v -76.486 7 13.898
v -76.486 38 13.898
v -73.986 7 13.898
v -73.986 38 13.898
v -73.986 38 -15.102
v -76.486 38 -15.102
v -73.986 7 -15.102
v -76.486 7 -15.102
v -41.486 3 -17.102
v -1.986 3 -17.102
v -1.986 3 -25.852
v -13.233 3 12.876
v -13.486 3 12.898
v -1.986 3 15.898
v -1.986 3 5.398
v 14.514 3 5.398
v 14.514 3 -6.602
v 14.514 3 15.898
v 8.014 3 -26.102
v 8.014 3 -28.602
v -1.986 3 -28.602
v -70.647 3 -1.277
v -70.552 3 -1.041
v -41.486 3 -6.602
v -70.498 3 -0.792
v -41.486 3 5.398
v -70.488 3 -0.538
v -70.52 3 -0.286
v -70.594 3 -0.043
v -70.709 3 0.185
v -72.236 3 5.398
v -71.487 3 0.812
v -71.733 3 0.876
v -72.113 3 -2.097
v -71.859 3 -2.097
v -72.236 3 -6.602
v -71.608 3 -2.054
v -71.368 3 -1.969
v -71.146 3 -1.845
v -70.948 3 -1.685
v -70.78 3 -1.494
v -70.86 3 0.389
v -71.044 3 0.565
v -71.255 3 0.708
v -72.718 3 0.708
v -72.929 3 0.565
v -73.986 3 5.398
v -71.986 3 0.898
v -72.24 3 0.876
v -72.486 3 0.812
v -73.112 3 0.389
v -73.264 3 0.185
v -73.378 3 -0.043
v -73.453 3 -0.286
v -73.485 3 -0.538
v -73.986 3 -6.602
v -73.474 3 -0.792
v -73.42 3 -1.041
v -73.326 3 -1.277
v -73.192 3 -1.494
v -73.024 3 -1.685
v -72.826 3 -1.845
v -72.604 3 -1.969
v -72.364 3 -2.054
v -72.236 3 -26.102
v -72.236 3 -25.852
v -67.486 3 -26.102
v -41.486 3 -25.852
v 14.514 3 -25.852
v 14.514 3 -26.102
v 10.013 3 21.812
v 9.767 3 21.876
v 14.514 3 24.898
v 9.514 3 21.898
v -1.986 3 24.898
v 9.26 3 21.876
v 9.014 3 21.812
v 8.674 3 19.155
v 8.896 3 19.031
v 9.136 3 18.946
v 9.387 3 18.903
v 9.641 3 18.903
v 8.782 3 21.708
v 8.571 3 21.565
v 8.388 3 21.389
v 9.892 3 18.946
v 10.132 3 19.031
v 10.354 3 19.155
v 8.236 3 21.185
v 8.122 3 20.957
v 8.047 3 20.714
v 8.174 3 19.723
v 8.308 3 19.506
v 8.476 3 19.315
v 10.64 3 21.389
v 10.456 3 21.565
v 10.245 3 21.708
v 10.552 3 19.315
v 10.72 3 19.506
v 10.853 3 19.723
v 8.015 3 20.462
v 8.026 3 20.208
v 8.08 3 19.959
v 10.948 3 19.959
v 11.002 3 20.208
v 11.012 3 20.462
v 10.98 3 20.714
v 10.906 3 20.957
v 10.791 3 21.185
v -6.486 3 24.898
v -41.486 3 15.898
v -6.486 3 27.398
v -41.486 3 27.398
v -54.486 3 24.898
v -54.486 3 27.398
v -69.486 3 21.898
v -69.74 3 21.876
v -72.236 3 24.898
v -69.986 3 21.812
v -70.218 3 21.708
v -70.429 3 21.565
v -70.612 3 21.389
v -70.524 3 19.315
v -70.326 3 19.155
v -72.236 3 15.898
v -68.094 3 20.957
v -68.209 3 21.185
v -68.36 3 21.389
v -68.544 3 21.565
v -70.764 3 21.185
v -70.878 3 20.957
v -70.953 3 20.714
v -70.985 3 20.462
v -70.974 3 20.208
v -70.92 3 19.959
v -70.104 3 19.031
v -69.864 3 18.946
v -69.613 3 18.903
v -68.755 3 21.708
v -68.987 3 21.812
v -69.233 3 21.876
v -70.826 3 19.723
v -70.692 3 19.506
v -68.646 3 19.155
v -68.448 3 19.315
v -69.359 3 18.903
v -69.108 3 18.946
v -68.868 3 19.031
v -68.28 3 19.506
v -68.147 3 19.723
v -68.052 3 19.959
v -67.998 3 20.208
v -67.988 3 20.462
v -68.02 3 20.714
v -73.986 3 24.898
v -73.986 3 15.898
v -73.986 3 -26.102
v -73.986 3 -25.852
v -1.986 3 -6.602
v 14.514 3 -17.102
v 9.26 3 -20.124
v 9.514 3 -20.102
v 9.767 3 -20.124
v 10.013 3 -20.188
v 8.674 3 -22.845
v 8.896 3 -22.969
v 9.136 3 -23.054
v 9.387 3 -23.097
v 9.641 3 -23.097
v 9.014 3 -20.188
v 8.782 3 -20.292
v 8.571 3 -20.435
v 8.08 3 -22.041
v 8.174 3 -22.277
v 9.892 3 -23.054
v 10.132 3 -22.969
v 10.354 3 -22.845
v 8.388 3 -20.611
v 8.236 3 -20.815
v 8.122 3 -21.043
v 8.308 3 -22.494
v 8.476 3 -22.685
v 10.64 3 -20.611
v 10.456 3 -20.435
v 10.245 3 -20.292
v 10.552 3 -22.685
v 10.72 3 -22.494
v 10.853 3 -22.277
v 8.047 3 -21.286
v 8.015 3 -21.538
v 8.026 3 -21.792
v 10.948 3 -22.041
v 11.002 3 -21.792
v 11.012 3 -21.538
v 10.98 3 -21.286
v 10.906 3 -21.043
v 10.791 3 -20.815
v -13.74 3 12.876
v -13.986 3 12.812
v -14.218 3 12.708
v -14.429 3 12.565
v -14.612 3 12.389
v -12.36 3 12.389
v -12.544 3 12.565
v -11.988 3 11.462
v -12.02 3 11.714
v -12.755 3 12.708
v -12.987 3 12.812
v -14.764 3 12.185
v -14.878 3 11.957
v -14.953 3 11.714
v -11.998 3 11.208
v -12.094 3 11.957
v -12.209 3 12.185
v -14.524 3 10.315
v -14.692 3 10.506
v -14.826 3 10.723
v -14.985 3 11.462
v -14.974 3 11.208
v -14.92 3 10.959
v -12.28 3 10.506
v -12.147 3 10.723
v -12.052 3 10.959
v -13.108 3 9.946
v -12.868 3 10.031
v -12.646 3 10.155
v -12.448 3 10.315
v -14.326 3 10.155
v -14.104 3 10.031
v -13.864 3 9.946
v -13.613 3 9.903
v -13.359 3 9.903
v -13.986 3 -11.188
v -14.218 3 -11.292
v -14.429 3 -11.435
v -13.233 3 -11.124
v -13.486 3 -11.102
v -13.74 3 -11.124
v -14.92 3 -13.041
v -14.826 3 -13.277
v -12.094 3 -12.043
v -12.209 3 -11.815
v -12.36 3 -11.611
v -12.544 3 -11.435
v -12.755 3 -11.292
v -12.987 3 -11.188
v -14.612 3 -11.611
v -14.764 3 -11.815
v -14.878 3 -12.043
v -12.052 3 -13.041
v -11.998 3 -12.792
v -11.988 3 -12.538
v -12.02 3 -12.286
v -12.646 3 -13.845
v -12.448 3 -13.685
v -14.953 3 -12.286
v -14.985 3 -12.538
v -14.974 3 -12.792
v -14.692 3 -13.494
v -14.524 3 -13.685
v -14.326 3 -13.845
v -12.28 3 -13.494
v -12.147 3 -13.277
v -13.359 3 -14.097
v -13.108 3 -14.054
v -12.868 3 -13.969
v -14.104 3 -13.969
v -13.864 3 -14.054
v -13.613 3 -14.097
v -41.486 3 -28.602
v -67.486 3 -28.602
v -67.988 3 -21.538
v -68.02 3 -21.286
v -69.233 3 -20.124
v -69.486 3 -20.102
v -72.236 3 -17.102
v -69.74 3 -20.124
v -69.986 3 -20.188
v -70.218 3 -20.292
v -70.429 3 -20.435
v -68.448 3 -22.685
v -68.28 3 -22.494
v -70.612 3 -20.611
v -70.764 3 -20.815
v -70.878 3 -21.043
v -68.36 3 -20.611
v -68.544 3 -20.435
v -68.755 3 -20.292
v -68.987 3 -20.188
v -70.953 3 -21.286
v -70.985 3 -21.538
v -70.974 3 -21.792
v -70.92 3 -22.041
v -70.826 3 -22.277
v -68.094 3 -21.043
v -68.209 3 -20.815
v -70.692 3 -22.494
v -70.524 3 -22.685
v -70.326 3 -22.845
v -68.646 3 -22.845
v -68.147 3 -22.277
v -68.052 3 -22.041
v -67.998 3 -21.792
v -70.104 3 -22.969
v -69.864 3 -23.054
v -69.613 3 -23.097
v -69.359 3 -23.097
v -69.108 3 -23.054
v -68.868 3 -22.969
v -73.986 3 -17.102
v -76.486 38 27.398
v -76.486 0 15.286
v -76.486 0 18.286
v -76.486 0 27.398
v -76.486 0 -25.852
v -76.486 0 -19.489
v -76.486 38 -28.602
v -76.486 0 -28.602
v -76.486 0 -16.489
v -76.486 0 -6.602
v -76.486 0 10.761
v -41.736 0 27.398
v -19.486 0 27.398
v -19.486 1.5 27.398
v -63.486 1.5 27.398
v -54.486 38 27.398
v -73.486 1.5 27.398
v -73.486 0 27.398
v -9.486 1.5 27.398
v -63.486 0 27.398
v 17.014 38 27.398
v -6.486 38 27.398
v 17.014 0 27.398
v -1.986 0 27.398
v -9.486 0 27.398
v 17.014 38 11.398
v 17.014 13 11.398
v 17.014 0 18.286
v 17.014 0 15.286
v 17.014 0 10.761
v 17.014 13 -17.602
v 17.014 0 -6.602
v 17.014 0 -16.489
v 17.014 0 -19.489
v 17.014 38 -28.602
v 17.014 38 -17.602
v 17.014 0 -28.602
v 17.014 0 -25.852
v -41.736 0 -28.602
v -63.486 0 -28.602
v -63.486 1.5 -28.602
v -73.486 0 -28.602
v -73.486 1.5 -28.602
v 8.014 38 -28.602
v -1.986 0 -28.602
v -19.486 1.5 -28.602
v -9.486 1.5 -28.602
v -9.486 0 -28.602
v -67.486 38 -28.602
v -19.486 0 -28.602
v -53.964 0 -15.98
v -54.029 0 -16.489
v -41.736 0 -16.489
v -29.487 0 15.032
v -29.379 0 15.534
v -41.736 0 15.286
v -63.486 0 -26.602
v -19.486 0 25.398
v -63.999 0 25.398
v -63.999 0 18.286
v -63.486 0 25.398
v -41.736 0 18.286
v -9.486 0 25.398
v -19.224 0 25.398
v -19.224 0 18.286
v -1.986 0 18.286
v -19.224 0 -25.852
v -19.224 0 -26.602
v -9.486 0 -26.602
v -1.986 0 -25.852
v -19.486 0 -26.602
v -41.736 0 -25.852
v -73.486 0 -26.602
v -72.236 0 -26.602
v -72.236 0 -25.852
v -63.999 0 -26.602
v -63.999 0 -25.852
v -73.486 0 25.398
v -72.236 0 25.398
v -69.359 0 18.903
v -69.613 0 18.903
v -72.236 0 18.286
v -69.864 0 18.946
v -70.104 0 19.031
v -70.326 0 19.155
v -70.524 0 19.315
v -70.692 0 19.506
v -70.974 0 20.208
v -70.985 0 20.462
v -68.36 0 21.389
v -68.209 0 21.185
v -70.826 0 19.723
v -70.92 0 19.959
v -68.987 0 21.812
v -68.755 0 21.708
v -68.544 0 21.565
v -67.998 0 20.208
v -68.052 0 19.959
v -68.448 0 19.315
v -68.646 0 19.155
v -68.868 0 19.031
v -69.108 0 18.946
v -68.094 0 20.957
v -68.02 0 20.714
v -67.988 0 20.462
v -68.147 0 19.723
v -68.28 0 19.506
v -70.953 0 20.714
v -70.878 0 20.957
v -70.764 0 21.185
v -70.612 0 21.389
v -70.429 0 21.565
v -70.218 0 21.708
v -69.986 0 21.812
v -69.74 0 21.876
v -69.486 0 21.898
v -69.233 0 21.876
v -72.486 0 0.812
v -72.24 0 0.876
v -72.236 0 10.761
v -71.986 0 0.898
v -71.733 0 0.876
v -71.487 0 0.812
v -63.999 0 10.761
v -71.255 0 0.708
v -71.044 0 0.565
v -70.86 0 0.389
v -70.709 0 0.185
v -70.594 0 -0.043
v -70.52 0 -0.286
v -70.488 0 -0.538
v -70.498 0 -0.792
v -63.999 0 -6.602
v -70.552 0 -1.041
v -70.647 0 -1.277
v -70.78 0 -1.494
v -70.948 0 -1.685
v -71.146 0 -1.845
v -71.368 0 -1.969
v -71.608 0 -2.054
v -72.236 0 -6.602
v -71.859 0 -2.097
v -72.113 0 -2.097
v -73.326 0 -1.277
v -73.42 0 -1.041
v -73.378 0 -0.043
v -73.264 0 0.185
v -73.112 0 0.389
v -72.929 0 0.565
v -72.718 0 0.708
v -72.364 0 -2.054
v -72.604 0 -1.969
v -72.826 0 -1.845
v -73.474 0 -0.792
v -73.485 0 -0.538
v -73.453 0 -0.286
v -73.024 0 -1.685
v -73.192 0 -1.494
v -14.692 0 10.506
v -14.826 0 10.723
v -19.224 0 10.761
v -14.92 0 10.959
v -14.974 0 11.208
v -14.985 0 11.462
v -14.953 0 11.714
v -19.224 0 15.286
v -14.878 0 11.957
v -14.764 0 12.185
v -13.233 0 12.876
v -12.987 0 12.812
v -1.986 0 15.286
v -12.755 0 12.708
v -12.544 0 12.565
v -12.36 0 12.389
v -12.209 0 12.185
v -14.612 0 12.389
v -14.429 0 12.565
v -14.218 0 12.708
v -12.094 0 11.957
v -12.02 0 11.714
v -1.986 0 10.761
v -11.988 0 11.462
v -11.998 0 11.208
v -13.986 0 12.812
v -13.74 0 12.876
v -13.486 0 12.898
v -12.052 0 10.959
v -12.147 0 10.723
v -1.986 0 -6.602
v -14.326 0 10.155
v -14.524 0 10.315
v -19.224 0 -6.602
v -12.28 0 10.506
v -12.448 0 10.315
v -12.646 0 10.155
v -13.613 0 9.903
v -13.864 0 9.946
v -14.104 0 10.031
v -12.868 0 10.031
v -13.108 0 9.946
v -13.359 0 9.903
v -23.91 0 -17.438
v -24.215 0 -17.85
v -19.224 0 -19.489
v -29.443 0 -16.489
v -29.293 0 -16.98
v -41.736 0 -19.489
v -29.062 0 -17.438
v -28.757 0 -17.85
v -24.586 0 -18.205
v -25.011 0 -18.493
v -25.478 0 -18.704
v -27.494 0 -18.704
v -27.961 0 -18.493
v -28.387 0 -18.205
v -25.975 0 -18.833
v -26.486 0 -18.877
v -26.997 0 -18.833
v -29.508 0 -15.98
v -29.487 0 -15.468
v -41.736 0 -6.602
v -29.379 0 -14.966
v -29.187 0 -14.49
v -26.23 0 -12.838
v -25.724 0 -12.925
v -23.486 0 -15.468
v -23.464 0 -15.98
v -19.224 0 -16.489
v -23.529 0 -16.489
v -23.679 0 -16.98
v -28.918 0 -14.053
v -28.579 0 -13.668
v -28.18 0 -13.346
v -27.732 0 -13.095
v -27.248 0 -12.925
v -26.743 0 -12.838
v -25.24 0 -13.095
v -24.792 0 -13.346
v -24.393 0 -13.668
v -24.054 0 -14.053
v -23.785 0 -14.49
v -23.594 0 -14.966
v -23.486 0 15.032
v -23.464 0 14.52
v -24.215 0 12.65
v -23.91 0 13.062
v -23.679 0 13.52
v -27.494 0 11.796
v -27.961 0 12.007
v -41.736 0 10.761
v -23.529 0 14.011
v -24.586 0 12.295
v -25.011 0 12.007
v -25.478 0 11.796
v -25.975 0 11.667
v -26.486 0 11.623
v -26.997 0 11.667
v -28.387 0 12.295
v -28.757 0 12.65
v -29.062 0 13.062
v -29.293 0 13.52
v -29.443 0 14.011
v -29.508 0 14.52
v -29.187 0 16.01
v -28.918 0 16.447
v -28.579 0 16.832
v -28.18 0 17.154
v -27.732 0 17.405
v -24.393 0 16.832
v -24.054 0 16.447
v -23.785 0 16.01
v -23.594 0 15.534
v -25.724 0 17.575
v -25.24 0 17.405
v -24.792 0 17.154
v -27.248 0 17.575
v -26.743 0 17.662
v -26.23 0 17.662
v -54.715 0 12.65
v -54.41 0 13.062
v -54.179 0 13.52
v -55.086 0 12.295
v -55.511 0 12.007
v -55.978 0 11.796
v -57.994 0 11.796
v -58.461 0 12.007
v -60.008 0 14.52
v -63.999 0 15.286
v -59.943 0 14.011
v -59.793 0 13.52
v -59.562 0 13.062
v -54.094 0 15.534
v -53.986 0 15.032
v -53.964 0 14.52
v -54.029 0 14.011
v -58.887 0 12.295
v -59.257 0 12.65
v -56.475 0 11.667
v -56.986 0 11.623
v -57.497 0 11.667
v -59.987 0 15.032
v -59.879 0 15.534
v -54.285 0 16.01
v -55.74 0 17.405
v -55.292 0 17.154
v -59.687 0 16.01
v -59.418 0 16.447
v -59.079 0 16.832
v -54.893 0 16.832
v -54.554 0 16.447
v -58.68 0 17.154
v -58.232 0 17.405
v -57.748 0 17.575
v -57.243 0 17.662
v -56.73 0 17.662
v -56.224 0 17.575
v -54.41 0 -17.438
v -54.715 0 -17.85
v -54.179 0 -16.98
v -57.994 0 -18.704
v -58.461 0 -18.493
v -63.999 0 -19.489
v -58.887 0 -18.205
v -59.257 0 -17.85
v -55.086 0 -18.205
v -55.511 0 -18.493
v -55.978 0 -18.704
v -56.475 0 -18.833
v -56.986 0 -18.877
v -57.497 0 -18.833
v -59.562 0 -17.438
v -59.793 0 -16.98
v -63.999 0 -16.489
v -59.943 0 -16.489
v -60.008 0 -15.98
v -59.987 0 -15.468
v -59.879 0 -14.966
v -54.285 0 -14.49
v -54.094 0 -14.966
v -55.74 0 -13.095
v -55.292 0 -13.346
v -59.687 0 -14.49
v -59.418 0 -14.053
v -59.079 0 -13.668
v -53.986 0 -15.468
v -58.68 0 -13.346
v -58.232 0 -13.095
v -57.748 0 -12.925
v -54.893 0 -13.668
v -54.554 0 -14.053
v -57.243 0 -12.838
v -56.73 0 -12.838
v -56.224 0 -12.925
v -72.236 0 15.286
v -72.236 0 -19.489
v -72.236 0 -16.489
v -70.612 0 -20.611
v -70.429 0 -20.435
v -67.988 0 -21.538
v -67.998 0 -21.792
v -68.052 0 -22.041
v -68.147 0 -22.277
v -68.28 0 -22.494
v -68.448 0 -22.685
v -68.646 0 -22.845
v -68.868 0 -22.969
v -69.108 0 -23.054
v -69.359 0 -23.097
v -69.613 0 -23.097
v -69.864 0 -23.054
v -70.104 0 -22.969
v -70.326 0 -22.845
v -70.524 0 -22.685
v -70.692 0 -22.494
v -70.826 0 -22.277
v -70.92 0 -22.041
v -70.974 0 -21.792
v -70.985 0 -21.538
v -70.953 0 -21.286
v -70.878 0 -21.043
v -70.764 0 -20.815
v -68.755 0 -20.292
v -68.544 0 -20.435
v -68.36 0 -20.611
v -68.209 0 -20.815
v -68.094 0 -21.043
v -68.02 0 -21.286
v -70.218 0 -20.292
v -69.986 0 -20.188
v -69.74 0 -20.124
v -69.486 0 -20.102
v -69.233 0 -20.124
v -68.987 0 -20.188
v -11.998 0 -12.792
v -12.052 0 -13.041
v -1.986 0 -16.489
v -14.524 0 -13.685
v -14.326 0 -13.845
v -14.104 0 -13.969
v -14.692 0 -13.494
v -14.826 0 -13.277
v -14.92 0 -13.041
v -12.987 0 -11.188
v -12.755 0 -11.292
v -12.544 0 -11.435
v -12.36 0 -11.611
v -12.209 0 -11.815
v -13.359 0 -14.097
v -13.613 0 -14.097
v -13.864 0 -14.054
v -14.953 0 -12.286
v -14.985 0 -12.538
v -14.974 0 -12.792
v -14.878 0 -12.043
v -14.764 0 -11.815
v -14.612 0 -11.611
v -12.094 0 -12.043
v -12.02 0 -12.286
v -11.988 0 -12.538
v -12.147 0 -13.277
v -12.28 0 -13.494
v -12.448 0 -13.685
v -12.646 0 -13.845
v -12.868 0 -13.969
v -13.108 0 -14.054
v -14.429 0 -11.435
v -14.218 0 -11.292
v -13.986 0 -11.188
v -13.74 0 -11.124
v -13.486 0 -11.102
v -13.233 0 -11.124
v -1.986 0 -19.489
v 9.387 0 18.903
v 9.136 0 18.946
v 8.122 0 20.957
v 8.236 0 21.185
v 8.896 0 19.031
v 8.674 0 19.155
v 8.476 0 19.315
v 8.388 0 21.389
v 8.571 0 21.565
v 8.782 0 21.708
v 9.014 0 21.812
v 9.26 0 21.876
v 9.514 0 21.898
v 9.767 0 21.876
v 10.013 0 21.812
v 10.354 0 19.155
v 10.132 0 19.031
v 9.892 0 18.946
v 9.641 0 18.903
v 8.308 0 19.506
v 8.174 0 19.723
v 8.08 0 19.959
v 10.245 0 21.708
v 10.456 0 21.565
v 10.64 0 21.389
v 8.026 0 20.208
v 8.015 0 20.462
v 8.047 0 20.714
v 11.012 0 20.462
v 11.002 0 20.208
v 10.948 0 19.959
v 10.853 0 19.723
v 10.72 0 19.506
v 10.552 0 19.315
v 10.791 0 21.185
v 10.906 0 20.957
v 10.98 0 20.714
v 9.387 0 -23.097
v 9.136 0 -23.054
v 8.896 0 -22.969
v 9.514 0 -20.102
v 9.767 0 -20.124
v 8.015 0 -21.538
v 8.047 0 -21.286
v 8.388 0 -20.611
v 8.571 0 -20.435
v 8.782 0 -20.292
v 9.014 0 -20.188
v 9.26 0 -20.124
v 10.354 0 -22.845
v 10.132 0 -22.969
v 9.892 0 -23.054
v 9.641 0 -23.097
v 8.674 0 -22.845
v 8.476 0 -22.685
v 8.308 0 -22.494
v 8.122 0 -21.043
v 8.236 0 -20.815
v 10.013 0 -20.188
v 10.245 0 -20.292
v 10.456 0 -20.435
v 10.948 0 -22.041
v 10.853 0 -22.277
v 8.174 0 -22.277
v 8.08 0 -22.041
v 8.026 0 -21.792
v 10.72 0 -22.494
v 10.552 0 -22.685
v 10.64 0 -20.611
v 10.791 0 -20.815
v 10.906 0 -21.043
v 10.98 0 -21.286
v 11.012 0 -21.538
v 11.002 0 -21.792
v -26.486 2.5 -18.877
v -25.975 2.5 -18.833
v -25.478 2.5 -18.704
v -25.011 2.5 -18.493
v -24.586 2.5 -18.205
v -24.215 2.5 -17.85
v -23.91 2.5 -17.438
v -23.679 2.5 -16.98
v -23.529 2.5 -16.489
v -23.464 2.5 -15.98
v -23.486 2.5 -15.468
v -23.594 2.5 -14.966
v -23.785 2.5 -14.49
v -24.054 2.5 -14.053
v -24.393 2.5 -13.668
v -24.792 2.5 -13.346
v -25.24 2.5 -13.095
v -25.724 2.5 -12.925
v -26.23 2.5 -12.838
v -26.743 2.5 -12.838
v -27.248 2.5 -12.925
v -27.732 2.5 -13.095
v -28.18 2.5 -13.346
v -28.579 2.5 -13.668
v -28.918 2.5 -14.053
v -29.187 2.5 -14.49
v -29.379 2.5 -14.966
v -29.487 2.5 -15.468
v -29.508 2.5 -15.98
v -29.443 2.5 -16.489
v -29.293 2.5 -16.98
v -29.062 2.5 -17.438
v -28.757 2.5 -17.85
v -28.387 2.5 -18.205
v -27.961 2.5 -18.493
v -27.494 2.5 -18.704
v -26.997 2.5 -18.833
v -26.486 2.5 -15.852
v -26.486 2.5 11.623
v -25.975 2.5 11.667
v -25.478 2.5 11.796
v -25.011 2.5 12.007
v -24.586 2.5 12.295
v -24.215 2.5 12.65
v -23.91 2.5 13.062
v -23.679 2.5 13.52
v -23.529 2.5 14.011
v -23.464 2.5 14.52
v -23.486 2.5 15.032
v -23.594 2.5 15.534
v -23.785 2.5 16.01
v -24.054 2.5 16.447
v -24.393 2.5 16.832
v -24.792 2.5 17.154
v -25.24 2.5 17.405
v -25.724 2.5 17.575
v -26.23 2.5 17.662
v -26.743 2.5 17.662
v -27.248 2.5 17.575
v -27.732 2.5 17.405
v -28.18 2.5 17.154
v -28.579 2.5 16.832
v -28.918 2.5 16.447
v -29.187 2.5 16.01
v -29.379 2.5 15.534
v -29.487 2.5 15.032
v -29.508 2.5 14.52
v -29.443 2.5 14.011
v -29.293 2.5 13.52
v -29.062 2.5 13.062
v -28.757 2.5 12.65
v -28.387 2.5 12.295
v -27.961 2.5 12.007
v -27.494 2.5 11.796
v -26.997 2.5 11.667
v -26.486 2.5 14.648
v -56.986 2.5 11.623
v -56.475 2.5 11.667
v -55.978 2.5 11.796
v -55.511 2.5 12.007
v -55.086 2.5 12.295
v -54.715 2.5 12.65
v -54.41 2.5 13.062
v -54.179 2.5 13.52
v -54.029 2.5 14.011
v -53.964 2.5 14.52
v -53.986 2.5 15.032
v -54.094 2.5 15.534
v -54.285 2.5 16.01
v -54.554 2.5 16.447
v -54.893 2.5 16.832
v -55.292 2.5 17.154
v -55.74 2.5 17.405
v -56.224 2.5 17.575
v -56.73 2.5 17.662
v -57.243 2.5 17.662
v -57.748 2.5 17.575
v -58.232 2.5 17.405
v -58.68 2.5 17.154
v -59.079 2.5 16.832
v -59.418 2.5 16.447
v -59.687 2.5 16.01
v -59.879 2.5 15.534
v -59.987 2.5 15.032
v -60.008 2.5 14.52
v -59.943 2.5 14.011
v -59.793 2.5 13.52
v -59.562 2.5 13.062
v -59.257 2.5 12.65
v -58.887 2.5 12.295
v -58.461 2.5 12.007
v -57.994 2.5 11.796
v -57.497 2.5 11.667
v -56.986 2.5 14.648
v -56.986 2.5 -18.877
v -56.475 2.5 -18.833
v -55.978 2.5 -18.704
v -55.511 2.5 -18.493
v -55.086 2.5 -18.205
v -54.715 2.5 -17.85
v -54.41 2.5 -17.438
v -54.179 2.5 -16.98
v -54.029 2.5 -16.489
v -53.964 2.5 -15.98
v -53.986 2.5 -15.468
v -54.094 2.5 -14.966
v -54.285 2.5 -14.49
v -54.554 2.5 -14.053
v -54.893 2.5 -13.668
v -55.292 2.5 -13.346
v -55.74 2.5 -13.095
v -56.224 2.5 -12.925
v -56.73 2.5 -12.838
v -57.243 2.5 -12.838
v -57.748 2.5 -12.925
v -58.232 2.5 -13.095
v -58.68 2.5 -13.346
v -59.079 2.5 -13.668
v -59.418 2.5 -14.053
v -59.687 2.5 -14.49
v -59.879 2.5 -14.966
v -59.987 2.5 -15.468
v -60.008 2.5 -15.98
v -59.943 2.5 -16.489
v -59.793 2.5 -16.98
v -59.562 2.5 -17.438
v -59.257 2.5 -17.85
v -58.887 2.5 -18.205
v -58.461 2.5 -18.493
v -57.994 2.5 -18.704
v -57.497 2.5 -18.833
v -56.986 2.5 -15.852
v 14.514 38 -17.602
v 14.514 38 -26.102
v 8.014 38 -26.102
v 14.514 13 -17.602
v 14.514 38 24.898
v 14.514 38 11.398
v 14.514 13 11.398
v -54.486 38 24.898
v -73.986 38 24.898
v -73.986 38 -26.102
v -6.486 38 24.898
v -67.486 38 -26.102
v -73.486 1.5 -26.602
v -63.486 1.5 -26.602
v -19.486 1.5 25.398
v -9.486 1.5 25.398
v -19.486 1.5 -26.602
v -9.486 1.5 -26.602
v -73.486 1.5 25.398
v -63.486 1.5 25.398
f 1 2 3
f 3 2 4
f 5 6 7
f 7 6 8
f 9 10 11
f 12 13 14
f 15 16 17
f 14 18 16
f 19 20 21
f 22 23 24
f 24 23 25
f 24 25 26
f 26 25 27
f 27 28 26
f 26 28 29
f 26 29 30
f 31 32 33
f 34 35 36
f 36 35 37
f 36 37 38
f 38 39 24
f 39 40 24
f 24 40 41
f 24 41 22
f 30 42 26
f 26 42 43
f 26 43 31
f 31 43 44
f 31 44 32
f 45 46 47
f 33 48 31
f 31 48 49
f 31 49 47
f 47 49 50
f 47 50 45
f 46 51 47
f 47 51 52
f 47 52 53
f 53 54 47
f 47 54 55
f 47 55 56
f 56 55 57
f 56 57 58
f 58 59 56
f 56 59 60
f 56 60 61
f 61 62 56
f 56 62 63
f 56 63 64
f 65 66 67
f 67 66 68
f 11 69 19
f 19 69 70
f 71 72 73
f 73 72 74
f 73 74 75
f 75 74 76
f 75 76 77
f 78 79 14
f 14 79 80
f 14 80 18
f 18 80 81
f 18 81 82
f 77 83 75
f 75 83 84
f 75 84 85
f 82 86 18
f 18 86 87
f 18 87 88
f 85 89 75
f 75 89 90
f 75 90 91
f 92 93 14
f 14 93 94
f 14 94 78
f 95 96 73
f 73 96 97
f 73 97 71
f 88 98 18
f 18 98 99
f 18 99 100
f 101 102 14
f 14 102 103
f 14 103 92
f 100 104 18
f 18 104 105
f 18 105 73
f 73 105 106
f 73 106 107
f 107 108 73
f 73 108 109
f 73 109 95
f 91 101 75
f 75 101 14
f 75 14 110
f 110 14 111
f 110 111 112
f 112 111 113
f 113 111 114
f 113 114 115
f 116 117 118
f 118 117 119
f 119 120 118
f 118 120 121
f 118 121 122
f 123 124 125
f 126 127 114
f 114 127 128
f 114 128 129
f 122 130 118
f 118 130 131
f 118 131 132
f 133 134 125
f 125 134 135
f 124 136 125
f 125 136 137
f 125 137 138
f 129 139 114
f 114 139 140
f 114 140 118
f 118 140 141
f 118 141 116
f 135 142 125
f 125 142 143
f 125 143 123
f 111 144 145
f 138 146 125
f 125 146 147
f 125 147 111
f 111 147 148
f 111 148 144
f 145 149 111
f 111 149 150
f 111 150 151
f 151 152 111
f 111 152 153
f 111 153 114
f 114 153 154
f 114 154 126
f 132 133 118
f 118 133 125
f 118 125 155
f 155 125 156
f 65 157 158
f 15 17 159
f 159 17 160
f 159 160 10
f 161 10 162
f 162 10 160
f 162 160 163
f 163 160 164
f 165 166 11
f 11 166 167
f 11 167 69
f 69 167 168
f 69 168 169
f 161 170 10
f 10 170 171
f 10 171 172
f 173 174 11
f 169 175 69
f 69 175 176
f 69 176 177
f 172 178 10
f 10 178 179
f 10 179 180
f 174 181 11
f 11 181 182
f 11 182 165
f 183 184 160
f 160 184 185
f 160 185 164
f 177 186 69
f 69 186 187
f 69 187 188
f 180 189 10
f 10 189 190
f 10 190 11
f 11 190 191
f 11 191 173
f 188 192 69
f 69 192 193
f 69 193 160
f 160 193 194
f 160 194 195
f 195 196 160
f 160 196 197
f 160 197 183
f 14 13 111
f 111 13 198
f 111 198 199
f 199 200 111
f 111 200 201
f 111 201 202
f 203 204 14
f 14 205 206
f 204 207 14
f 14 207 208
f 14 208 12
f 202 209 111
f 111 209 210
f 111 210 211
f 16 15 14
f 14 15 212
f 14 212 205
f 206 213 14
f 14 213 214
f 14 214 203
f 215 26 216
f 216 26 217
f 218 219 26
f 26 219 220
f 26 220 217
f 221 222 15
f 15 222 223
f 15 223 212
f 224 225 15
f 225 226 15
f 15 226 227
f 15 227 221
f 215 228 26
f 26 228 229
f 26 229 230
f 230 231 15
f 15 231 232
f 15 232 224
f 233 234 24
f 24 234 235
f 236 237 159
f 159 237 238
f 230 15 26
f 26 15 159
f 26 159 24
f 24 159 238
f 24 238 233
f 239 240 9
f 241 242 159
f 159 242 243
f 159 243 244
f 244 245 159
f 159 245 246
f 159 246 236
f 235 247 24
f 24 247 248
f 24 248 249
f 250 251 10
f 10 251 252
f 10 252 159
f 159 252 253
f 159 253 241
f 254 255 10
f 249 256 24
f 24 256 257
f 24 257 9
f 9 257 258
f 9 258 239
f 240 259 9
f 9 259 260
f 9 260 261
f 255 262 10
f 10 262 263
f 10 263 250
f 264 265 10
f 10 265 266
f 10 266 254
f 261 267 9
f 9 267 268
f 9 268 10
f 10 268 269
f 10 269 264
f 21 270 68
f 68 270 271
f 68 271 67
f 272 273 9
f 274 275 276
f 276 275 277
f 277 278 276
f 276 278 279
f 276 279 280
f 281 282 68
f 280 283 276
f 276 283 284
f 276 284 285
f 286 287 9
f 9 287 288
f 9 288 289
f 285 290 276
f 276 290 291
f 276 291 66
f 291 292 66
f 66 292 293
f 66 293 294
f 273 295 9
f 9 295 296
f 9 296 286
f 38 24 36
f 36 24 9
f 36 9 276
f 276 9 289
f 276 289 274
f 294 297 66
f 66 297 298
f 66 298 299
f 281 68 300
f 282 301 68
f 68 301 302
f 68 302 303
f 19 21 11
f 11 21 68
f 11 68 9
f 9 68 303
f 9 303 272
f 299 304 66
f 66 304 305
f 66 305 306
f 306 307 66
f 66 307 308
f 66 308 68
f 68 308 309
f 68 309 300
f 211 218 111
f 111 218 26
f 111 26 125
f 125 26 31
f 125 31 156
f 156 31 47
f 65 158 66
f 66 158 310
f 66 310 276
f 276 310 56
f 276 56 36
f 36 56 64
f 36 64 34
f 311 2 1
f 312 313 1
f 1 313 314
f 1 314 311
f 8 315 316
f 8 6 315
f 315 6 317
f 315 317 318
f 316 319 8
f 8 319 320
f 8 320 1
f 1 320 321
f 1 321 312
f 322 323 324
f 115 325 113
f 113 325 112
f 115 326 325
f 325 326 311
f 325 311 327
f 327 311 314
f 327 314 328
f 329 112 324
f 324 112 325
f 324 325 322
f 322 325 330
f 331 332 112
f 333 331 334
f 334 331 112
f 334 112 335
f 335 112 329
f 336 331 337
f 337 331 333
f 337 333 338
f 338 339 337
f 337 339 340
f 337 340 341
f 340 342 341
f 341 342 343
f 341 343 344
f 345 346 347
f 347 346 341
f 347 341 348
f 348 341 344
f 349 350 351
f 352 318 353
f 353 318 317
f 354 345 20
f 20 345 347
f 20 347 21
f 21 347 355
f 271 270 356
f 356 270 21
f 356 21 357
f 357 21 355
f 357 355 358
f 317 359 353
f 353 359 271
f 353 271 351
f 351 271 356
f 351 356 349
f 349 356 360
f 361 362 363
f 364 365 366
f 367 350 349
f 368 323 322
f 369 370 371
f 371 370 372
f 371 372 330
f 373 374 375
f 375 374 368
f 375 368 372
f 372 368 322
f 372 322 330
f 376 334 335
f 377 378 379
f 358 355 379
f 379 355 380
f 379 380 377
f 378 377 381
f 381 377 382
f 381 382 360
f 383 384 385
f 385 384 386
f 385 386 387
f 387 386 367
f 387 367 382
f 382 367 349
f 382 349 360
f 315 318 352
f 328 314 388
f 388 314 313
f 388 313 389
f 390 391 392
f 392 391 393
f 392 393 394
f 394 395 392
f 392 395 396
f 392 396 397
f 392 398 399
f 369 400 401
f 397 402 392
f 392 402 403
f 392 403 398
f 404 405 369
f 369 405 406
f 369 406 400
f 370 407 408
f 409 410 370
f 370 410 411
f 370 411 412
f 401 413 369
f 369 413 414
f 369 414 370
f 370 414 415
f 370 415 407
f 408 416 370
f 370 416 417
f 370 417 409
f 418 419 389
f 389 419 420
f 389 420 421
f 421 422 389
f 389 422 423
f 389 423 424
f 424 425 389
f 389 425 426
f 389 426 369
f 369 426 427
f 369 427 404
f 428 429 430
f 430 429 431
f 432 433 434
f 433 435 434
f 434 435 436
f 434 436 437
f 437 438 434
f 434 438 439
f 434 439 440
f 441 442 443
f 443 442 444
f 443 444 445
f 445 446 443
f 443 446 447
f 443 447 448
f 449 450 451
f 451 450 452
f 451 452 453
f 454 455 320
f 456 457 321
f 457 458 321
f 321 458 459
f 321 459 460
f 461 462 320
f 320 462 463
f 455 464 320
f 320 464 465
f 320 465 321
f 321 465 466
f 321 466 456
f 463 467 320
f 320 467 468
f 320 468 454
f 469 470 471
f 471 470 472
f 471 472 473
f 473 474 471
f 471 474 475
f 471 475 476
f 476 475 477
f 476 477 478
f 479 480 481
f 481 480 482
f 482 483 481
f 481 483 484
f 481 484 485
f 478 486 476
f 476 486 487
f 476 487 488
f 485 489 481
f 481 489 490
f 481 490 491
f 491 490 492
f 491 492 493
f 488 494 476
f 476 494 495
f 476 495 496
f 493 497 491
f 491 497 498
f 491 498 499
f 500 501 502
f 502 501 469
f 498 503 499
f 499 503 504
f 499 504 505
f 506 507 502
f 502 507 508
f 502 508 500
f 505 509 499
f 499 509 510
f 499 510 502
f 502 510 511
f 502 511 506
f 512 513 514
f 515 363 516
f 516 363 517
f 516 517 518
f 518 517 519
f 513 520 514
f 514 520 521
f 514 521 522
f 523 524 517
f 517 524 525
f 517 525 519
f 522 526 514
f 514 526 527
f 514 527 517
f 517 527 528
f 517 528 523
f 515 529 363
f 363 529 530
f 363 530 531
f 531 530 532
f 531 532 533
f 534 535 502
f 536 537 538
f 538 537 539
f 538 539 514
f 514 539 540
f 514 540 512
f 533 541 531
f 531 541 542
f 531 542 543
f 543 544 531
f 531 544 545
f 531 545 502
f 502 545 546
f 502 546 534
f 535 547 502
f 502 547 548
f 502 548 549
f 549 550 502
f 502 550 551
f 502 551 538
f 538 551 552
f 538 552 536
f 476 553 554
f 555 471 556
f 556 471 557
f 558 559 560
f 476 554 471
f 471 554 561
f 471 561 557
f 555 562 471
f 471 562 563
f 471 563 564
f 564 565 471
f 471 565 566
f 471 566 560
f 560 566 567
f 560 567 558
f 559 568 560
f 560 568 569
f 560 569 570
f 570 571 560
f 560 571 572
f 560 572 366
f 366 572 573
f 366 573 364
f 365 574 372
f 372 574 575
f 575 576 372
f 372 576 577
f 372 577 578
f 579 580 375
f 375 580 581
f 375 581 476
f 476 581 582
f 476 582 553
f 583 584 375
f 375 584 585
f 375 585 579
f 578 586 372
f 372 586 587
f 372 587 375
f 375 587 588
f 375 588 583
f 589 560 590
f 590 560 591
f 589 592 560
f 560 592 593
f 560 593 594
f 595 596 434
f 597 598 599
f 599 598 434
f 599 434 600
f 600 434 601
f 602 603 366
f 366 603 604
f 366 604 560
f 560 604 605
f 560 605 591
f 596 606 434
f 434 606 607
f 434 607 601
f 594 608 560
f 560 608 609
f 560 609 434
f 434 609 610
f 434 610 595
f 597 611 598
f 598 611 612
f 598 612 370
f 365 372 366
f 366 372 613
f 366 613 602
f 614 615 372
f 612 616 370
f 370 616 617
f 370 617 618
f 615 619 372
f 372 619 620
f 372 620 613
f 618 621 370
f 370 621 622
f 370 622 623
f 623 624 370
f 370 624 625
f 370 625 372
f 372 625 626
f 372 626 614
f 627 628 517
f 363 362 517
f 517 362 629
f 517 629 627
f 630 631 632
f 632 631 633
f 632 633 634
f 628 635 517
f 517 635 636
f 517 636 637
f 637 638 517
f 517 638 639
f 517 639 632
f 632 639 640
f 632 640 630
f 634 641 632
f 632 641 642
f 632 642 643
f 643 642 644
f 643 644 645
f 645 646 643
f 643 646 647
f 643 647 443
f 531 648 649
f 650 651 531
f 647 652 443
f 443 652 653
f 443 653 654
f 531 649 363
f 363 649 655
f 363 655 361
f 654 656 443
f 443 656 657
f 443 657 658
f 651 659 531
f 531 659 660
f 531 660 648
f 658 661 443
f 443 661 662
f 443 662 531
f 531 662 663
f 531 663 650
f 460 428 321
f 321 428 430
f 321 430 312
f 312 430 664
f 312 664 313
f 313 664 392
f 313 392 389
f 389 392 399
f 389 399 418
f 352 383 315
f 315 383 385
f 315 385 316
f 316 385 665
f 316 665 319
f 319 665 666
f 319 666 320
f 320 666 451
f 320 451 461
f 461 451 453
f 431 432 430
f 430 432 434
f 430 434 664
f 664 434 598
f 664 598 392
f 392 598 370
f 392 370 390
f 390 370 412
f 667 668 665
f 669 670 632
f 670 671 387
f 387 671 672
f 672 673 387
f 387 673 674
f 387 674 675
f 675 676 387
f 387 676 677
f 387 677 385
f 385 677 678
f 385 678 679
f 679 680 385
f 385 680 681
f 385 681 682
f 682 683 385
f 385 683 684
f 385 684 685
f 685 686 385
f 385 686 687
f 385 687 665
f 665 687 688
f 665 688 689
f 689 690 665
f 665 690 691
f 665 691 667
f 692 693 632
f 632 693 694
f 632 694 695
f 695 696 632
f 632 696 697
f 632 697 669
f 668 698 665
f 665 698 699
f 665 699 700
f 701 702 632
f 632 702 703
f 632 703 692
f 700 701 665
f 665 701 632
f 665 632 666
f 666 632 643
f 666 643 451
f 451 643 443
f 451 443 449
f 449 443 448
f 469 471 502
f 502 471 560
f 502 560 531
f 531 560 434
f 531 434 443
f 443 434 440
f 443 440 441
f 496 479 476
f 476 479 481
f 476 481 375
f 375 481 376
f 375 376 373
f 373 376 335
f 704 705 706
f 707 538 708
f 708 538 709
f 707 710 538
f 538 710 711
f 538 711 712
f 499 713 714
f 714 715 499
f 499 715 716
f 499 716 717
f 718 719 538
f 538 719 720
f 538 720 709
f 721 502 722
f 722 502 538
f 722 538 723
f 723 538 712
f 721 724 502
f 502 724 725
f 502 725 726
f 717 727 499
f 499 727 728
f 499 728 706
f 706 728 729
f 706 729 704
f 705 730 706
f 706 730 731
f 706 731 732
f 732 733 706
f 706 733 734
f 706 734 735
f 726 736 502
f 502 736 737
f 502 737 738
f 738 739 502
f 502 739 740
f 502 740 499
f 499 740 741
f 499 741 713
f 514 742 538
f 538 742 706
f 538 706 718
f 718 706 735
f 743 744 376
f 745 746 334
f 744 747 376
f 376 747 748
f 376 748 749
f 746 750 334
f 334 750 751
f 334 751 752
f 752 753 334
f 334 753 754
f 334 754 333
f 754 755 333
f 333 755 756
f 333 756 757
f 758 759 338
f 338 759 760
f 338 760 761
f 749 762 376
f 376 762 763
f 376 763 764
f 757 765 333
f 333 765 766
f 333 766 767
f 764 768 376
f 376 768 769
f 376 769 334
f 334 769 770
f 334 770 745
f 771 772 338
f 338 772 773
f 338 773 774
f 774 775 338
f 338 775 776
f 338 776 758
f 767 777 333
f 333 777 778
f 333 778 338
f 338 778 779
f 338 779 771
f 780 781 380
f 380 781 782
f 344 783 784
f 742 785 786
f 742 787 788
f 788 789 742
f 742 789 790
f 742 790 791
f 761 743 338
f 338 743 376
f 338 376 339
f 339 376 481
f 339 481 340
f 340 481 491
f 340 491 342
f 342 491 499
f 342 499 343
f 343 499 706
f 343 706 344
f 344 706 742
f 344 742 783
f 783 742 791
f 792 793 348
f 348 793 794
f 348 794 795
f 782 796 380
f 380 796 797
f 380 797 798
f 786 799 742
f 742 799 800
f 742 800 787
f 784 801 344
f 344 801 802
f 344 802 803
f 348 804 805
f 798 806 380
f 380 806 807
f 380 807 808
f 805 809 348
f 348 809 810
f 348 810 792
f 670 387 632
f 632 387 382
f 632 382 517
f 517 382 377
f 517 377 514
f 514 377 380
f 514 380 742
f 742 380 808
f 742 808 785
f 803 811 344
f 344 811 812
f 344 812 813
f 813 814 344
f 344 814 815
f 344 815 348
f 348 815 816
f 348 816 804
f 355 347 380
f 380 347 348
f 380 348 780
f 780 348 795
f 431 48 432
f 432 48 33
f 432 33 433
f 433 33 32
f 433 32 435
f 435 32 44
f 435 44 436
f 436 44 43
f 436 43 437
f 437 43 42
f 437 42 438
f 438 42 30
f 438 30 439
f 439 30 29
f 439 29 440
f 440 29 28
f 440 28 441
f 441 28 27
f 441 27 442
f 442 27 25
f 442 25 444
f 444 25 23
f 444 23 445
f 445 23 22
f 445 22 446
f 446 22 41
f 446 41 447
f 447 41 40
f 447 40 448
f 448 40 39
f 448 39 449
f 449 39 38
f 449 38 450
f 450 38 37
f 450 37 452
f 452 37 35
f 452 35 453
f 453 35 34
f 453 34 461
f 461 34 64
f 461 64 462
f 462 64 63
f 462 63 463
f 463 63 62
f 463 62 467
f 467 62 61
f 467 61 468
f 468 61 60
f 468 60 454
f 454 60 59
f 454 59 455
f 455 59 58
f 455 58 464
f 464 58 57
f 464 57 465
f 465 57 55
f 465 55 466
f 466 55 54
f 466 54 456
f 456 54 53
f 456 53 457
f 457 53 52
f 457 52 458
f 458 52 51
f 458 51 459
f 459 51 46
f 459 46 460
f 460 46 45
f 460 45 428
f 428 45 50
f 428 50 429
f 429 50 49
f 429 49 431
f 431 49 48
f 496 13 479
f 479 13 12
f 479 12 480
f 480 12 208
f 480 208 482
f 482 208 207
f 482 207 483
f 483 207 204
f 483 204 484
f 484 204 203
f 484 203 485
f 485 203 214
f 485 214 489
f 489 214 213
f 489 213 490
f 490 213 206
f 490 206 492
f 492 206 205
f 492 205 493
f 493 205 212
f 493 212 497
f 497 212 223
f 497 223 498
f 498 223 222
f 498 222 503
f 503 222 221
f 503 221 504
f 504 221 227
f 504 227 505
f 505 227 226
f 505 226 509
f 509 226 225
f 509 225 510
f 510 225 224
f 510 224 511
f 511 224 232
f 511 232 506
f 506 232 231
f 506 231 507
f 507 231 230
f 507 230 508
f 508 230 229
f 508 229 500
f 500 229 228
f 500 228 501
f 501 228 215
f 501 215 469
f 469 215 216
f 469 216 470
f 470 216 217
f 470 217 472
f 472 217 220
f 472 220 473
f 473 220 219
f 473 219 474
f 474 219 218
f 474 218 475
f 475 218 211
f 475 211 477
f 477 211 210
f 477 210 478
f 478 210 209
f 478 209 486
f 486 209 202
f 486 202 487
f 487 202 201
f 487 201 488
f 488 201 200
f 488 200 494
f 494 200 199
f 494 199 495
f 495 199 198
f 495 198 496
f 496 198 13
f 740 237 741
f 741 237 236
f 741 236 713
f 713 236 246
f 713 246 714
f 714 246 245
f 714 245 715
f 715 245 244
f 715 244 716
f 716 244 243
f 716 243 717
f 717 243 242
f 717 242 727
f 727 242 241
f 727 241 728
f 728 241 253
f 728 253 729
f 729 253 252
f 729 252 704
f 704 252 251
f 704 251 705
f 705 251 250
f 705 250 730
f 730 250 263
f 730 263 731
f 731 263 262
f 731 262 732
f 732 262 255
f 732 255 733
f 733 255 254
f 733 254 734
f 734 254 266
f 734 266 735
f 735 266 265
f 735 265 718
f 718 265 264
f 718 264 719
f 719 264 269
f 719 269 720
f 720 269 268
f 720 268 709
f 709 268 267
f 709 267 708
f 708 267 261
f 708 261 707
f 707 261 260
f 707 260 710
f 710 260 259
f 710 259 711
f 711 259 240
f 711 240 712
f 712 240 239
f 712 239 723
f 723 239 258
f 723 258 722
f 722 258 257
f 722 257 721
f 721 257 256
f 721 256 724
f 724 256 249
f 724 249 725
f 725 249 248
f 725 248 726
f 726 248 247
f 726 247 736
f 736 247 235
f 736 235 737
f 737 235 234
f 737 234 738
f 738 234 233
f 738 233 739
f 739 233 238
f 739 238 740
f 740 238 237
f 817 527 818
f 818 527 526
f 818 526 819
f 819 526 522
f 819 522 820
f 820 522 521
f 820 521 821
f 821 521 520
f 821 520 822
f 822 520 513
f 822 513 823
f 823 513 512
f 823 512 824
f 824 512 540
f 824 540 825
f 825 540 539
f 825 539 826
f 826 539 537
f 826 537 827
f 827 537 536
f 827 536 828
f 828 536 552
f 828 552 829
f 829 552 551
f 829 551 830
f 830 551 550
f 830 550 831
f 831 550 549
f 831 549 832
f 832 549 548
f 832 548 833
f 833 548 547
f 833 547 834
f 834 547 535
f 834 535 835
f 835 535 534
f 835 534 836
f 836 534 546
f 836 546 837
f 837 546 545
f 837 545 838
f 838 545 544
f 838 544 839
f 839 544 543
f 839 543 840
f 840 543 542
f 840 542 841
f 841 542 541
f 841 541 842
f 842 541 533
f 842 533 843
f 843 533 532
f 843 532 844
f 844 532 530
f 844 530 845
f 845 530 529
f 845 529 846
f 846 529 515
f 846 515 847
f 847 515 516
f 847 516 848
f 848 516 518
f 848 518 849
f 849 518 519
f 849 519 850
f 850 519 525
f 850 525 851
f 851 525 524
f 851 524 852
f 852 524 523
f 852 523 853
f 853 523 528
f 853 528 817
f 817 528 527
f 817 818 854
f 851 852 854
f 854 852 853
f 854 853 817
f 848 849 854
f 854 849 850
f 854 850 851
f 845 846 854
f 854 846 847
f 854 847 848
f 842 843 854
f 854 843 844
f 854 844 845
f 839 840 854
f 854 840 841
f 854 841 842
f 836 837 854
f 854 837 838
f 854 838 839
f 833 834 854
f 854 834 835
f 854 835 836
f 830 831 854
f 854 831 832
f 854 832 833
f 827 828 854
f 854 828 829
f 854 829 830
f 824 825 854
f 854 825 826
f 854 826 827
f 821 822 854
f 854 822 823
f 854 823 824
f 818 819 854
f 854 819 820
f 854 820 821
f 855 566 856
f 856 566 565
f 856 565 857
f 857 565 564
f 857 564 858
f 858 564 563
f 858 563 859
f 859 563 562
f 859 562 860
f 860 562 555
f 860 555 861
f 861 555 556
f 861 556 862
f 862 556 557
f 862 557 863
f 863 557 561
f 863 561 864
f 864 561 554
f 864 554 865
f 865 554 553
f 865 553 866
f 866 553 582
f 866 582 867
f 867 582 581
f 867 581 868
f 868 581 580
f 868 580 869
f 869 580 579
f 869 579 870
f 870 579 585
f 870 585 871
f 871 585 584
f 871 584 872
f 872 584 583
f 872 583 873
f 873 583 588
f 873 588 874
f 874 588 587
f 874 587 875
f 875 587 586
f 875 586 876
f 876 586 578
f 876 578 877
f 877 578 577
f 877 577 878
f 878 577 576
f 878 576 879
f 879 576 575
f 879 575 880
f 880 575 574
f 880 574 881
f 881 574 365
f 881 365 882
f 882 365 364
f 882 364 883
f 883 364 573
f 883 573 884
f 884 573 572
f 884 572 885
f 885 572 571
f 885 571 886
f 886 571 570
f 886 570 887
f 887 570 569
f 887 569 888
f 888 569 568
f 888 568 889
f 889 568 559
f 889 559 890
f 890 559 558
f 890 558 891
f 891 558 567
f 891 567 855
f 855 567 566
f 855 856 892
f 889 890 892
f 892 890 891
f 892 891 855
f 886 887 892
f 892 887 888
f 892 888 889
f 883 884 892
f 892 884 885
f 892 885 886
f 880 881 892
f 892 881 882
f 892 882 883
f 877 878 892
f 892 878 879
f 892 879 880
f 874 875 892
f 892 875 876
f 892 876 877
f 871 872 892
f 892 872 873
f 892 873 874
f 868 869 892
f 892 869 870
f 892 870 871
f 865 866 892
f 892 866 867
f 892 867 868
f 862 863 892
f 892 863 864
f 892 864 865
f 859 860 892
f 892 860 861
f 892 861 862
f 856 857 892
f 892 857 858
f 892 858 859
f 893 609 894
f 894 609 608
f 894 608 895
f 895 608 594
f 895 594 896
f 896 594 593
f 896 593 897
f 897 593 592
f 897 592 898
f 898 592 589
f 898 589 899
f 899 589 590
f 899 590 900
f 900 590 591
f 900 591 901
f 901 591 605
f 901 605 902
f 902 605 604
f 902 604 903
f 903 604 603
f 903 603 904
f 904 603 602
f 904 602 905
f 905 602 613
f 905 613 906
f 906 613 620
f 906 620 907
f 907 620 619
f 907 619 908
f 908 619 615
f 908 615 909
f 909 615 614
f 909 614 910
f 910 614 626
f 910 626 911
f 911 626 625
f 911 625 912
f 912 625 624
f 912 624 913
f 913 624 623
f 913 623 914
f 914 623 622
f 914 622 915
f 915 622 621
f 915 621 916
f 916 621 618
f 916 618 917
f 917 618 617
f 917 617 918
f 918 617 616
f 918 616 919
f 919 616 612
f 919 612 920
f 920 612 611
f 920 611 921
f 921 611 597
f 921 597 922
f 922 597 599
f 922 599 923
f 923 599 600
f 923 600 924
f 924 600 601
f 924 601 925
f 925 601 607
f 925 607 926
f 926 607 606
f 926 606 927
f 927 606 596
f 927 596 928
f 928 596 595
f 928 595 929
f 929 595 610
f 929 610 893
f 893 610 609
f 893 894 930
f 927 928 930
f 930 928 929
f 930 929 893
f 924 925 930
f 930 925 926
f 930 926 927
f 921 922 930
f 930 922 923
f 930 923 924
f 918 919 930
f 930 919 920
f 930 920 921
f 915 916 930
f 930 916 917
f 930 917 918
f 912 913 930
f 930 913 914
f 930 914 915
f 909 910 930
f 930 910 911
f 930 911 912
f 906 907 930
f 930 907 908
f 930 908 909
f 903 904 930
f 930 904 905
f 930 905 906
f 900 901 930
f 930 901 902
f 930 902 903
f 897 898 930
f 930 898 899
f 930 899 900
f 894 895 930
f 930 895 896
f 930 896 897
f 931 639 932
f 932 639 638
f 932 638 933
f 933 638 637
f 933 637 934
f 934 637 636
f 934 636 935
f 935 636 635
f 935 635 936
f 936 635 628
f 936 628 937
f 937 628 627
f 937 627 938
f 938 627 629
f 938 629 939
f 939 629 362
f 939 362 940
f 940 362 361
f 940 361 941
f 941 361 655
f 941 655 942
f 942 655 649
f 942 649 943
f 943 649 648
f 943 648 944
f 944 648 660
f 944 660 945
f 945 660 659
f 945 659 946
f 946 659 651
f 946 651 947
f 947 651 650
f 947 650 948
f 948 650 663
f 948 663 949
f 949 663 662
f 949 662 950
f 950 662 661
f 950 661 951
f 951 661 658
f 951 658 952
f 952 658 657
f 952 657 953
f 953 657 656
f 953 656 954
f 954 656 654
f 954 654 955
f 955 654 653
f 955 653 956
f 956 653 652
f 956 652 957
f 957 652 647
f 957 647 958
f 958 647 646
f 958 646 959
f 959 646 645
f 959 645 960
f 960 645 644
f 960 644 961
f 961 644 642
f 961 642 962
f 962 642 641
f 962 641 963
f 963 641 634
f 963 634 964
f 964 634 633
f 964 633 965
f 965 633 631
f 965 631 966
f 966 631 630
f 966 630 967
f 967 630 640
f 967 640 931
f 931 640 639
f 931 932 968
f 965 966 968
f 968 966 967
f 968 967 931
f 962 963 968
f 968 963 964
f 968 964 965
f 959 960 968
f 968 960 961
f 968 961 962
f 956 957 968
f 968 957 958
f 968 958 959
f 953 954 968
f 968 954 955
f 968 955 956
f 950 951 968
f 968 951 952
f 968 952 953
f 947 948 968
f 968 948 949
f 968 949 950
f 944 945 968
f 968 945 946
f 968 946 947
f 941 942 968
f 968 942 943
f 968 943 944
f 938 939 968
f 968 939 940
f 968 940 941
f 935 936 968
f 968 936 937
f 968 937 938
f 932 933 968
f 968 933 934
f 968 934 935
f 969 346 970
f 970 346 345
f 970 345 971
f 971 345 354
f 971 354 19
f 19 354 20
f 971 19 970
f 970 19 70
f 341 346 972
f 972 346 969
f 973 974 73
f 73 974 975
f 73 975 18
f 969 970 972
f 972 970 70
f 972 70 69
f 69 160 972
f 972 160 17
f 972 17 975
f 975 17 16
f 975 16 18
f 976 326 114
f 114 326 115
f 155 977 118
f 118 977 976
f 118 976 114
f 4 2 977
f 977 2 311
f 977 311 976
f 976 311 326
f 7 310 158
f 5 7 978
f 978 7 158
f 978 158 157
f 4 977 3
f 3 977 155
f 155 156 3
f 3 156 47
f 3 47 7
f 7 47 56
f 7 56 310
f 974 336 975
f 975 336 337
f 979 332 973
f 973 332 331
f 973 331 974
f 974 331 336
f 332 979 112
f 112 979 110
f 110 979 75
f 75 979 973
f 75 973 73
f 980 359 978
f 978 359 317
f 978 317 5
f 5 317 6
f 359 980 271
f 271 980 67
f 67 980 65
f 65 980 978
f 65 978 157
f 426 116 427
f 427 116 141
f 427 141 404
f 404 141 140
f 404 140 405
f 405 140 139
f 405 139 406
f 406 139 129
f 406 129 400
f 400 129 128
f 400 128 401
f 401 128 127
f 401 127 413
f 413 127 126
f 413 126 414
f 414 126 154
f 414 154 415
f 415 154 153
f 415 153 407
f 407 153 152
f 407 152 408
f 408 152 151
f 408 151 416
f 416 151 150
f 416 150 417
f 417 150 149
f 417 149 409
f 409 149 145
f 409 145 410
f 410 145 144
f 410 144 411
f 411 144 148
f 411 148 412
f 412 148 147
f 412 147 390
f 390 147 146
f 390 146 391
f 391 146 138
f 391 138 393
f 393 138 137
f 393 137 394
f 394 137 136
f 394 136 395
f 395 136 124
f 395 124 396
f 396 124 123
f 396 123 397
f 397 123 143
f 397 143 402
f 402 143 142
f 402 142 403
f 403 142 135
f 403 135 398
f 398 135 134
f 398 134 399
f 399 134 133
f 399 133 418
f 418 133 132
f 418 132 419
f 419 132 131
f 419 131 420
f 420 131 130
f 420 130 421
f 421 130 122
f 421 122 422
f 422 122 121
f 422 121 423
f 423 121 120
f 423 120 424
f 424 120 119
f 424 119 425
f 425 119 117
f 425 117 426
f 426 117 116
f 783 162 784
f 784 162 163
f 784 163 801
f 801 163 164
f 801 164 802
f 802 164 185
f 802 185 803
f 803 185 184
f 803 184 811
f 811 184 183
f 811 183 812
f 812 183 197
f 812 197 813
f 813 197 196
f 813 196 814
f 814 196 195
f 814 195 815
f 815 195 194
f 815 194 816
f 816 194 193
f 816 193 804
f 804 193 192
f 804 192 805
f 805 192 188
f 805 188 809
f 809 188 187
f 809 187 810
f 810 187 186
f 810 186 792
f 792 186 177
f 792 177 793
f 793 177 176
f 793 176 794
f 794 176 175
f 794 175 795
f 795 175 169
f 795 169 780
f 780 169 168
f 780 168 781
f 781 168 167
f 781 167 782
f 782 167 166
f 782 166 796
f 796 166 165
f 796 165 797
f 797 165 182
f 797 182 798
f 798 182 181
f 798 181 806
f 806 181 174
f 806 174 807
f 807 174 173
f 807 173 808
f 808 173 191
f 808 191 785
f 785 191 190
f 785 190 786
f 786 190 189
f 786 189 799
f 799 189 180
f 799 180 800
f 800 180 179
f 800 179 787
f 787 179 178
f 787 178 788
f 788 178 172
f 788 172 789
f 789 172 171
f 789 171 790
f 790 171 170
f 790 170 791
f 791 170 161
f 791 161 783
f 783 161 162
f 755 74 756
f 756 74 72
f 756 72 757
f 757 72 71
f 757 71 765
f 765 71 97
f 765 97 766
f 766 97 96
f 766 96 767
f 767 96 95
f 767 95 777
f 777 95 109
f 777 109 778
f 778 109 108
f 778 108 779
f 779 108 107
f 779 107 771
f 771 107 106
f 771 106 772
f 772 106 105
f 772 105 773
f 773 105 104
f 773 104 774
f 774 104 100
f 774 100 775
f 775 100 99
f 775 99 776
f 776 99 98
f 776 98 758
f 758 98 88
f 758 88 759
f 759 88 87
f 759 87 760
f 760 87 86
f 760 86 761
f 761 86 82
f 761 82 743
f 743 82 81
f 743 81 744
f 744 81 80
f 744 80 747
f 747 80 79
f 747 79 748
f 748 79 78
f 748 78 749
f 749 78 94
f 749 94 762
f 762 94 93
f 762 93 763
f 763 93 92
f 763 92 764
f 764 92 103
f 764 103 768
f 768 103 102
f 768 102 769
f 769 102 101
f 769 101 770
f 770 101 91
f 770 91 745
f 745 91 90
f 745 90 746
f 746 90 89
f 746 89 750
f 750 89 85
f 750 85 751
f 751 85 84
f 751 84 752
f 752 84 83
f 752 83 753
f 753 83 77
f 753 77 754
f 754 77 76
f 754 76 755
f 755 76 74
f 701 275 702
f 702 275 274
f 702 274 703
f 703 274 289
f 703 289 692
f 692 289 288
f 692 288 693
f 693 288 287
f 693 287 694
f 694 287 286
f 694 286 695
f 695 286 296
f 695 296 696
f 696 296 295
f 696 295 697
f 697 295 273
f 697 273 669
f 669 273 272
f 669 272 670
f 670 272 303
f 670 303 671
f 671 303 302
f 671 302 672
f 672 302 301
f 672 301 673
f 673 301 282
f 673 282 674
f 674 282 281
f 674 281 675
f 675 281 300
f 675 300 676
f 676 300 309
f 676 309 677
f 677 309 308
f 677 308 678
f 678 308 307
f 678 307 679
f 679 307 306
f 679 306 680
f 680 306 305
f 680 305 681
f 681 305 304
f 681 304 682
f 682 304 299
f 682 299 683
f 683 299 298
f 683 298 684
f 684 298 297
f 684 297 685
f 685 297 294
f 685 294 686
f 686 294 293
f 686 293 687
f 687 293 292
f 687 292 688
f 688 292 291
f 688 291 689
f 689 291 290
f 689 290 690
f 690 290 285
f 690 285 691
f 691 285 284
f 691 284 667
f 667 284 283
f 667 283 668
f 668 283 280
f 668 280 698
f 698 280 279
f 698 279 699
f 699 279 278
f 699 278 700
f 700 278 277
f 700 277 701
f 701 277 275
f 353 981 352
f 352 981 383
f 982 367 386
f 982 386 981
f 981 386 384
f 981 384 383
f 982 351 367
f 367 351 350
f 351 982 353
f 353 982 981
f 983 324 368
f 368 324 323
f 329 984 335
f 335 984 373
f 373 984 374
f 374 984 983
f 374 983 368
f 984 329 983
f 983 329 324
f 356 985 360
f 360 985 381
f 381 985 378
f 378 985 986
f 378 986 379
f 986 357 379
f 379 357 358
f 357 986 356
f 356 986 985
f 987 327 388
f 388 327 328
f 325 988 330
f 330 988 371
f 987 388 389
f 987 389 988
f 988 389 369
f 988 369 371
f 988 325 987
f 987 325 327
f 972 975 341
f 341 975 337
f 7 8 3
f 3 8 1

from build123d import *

# Parameters (mm, degrees)
SKETCH2_W           = 93.5
SKETCH2_H           = 56
BOSS_EXTRUDE1_DEPTH = 3
SKETCH3_R           = 1.5
CUT_EXTRUDE5_DEPTH  = 4
SKETCH5_R           = 3.025
CUT_EXTRUDE7_DEPTH  = 2.5
SKETCH6_W           = 2.5
SKETCH6_H           = 2.5
SKETCH6_W_2         = 6.5
SKETCH6_H_2         = 8.5
SKETCH6_W_3         = 21
SKETCH6_H_3         = 11
BOSS_EXTRUDE2_DEPTH = 35
SKETCH8_R           = 1.5
CUT_EXTRUDE8_DEPTH  = 4
SKETCH9_W           = 10
SKETCH9_H           = 2
CUT_EXTRUDE9_DEPTH  = 1.5
SKETCH11_W          = 2.5
SKETCH11_H          = 29
BOSS_EXTRUDE4_DEPTH = 10
SKETCH12_W          = 2.5
SKETCH12_H          = 29
BOSS_EXTRUDE5_DEPTH = 4


with BuildPart() as part:
    # Sketch2 → Boss-Extrude1 (new body)
    with BuildSketch(Plane(origin=(0, 0, 0), x_dir=(1, 0, 0), z_dir=(0, 1, 0))):
        with Locations((-29.736211897, 0.601935214)):
            Rectangle(SKETCH2_W, SKETCH2_H)
    extrude(amount=BOSS_EXTRUDE1_DEPTH)

    # Sketch3 → Cut-Extrude5 (cut, through all)
    with BuildSketch(Plane(origin=(0, 3, 0), x_dir=(1, 0, 0), z_dir=(0, 1, 0))):
        with Locations((-13.486211897, 12.601935214)):
            Circle(SKETCH3_R)
        with Locations((-13.486211897, -11.398064786)):
            Circle(SKETCH3_R)
        with Locations((-71.986211897, 0.601935214)):
            Circle(SKETCH3_R)
    extrude(amount=-CUT_EXTRUDE5_DEPTH, mode=Mode.SUBTRACT)

    # Sketch5 → Cut-Extrude7 (cut)
    with BuildSketch(Plane(origin=(0, 0, 0), x_dir=(-1, 0, 0), z_dir=(0, -1, 0))):
        with Locations((26.486211897, 15.851935214)):
            Circle(SKETCH5_R)
        with Locations((26.486211897, -14.648064786)):
            Circle(SKETCH5_R)
        with Locations((56.986211897, -14.648064786)):
            Circle(SKETCH5_R)
        with Locations((56.986211897, 15.851935214)):
            Circle(SKETCH5_R)
    extrude(amount=-CUT_EXTRUDE7_DEPTH, mode=Mode.SUBTRACT)

    # Sketch6 → Boss-Extrude2 (add)
    with BuildSketch(Plane(origin=(0, 3, 0), x_dir=(1, 0, 0), z_dir=(0, 1, 0))):
        with Locations((15.763788103, 27.351935214)):
            Rectangle(SKETCH6_W, SKETCH6_H)
        with Locations((11.263788103, 27.351935214)):
            Rectangle(SKETCH6_W_2, SKETCH6_H)
        with Locations((15.763788103, 21.851935214)):
            Rectangle(SKETCH6_W, SKETCH6_H_2)
        Polygon((17.013788103, -11.398064786), (14.513788103, -11.398064786), (14.513788103, -24.898064786), (14.513788103, -27.398064786), (17.013788103, -27.398064786), align=None)
        with Locations((4.013788103, -26.148064786)):
            Rectangle(SKETCH6_W_3, SKETCH6_H)
        with Locations((-75.236211897, -19.398064786)):
            Rectangle(SKETCH6_W, SKETCH6_H_3)
        Polygon((-73.986211897, -24.898064786), (-76.486211897, -24.898064786), (-76.486211897, -27.398064786), (-54.486211897, -27.398064786), (-54.486211897, -24.898064786), align=None)
        Polygon((-76.486211897, 28.601935214), (-76.486211897, 26.101935214), (-73.986211897, 26.101935214), (-67.486211897, 26.101935214), (-67.486211897, 28.601935214), align=None)
        with Locations((-75.236211897, 20.601935214)):
            Rectangle(SKETCH6_W, SKETCH6_H_3)
    extrude(amount=BOSS_EXTRUDE2_DEPTH)

    # Sketch8 → Cut-Extrude8 (cut, through all)
    with BuildSketch(Plane(origin=(0, 3, 0), x_dir=(1, 0, 0), z_dir=(0, 1, 0))):
        with Locations((-69.486211897, -20.398064786)):
            Circle(SKETCH8_R)
        with Locations((-69.486211897, 21.601935214)):
            Circle(SKETCH8_R)
        with Locations((9.513788103, -20.398064786)):
            Circle(SKETCH8_R)
        with Locations((9.513788103, 21.601935214)):
            Circle(SKETCH8_R)
    extrude(amount=-CUT_EXTRUDE8_DEPTH, mode=Mode.SUBTRACT)

    # Sketch9 → Cut-Extrude9 (cut)
    with BuildSketch(Plane(origin=(0, 0, 0), x_dir=(-1, 0, 0), z_dir=(0, -1, 0))):
        with Locations((68.486211897, 27.601935214)):
            Rectangle(SKETCH9_W, SKETCH9_H)
        with Locations((68.486211897, -26.398064786)):
            Rectangle(SKETCH9_W, SKETCH9_H)
        with Locations((14.486211897, 27.601935214)):
            Rectangle(SKETCH9_W, SKETCH9_H)
        with Locations((14.486211897, -26.398064786)):
            Rectangle(SKETCH9_W, SKETCH9_H)
    extrude(amount=-CUT_EXTRUDE9_DEPTH, mode=Mode.SUBTRACT)

    # Sketch11 → Boss-Extrude4 (add)
    with BuildSketch(Plane(origin=(0, 3, 0), x_dir=(1, 0, 0), z_dir=(0, 1, 0))):
        with Locations((15.763788103, 3.101935214)):
            Rectangle(SKETCH11_W, SKETCH11_H)
    extrude(amount=BOSS_EXTRUDE4_DEPTH)

    # Sketch12 → Boss-Extrude5 (add)
    with BuildSketch(Plane(origin=(0, 3, 0), x_dir=(1, 0, 0), z_dir=(0, 1, 0))):
        with Locations((-75.236211897, 0.601935214)):
            Rectangle(SKETCH12_W, SKETCH12_H)
    extrude(amount=BOSS_EXTRUDE5_DEPTH)


solid = part.part
